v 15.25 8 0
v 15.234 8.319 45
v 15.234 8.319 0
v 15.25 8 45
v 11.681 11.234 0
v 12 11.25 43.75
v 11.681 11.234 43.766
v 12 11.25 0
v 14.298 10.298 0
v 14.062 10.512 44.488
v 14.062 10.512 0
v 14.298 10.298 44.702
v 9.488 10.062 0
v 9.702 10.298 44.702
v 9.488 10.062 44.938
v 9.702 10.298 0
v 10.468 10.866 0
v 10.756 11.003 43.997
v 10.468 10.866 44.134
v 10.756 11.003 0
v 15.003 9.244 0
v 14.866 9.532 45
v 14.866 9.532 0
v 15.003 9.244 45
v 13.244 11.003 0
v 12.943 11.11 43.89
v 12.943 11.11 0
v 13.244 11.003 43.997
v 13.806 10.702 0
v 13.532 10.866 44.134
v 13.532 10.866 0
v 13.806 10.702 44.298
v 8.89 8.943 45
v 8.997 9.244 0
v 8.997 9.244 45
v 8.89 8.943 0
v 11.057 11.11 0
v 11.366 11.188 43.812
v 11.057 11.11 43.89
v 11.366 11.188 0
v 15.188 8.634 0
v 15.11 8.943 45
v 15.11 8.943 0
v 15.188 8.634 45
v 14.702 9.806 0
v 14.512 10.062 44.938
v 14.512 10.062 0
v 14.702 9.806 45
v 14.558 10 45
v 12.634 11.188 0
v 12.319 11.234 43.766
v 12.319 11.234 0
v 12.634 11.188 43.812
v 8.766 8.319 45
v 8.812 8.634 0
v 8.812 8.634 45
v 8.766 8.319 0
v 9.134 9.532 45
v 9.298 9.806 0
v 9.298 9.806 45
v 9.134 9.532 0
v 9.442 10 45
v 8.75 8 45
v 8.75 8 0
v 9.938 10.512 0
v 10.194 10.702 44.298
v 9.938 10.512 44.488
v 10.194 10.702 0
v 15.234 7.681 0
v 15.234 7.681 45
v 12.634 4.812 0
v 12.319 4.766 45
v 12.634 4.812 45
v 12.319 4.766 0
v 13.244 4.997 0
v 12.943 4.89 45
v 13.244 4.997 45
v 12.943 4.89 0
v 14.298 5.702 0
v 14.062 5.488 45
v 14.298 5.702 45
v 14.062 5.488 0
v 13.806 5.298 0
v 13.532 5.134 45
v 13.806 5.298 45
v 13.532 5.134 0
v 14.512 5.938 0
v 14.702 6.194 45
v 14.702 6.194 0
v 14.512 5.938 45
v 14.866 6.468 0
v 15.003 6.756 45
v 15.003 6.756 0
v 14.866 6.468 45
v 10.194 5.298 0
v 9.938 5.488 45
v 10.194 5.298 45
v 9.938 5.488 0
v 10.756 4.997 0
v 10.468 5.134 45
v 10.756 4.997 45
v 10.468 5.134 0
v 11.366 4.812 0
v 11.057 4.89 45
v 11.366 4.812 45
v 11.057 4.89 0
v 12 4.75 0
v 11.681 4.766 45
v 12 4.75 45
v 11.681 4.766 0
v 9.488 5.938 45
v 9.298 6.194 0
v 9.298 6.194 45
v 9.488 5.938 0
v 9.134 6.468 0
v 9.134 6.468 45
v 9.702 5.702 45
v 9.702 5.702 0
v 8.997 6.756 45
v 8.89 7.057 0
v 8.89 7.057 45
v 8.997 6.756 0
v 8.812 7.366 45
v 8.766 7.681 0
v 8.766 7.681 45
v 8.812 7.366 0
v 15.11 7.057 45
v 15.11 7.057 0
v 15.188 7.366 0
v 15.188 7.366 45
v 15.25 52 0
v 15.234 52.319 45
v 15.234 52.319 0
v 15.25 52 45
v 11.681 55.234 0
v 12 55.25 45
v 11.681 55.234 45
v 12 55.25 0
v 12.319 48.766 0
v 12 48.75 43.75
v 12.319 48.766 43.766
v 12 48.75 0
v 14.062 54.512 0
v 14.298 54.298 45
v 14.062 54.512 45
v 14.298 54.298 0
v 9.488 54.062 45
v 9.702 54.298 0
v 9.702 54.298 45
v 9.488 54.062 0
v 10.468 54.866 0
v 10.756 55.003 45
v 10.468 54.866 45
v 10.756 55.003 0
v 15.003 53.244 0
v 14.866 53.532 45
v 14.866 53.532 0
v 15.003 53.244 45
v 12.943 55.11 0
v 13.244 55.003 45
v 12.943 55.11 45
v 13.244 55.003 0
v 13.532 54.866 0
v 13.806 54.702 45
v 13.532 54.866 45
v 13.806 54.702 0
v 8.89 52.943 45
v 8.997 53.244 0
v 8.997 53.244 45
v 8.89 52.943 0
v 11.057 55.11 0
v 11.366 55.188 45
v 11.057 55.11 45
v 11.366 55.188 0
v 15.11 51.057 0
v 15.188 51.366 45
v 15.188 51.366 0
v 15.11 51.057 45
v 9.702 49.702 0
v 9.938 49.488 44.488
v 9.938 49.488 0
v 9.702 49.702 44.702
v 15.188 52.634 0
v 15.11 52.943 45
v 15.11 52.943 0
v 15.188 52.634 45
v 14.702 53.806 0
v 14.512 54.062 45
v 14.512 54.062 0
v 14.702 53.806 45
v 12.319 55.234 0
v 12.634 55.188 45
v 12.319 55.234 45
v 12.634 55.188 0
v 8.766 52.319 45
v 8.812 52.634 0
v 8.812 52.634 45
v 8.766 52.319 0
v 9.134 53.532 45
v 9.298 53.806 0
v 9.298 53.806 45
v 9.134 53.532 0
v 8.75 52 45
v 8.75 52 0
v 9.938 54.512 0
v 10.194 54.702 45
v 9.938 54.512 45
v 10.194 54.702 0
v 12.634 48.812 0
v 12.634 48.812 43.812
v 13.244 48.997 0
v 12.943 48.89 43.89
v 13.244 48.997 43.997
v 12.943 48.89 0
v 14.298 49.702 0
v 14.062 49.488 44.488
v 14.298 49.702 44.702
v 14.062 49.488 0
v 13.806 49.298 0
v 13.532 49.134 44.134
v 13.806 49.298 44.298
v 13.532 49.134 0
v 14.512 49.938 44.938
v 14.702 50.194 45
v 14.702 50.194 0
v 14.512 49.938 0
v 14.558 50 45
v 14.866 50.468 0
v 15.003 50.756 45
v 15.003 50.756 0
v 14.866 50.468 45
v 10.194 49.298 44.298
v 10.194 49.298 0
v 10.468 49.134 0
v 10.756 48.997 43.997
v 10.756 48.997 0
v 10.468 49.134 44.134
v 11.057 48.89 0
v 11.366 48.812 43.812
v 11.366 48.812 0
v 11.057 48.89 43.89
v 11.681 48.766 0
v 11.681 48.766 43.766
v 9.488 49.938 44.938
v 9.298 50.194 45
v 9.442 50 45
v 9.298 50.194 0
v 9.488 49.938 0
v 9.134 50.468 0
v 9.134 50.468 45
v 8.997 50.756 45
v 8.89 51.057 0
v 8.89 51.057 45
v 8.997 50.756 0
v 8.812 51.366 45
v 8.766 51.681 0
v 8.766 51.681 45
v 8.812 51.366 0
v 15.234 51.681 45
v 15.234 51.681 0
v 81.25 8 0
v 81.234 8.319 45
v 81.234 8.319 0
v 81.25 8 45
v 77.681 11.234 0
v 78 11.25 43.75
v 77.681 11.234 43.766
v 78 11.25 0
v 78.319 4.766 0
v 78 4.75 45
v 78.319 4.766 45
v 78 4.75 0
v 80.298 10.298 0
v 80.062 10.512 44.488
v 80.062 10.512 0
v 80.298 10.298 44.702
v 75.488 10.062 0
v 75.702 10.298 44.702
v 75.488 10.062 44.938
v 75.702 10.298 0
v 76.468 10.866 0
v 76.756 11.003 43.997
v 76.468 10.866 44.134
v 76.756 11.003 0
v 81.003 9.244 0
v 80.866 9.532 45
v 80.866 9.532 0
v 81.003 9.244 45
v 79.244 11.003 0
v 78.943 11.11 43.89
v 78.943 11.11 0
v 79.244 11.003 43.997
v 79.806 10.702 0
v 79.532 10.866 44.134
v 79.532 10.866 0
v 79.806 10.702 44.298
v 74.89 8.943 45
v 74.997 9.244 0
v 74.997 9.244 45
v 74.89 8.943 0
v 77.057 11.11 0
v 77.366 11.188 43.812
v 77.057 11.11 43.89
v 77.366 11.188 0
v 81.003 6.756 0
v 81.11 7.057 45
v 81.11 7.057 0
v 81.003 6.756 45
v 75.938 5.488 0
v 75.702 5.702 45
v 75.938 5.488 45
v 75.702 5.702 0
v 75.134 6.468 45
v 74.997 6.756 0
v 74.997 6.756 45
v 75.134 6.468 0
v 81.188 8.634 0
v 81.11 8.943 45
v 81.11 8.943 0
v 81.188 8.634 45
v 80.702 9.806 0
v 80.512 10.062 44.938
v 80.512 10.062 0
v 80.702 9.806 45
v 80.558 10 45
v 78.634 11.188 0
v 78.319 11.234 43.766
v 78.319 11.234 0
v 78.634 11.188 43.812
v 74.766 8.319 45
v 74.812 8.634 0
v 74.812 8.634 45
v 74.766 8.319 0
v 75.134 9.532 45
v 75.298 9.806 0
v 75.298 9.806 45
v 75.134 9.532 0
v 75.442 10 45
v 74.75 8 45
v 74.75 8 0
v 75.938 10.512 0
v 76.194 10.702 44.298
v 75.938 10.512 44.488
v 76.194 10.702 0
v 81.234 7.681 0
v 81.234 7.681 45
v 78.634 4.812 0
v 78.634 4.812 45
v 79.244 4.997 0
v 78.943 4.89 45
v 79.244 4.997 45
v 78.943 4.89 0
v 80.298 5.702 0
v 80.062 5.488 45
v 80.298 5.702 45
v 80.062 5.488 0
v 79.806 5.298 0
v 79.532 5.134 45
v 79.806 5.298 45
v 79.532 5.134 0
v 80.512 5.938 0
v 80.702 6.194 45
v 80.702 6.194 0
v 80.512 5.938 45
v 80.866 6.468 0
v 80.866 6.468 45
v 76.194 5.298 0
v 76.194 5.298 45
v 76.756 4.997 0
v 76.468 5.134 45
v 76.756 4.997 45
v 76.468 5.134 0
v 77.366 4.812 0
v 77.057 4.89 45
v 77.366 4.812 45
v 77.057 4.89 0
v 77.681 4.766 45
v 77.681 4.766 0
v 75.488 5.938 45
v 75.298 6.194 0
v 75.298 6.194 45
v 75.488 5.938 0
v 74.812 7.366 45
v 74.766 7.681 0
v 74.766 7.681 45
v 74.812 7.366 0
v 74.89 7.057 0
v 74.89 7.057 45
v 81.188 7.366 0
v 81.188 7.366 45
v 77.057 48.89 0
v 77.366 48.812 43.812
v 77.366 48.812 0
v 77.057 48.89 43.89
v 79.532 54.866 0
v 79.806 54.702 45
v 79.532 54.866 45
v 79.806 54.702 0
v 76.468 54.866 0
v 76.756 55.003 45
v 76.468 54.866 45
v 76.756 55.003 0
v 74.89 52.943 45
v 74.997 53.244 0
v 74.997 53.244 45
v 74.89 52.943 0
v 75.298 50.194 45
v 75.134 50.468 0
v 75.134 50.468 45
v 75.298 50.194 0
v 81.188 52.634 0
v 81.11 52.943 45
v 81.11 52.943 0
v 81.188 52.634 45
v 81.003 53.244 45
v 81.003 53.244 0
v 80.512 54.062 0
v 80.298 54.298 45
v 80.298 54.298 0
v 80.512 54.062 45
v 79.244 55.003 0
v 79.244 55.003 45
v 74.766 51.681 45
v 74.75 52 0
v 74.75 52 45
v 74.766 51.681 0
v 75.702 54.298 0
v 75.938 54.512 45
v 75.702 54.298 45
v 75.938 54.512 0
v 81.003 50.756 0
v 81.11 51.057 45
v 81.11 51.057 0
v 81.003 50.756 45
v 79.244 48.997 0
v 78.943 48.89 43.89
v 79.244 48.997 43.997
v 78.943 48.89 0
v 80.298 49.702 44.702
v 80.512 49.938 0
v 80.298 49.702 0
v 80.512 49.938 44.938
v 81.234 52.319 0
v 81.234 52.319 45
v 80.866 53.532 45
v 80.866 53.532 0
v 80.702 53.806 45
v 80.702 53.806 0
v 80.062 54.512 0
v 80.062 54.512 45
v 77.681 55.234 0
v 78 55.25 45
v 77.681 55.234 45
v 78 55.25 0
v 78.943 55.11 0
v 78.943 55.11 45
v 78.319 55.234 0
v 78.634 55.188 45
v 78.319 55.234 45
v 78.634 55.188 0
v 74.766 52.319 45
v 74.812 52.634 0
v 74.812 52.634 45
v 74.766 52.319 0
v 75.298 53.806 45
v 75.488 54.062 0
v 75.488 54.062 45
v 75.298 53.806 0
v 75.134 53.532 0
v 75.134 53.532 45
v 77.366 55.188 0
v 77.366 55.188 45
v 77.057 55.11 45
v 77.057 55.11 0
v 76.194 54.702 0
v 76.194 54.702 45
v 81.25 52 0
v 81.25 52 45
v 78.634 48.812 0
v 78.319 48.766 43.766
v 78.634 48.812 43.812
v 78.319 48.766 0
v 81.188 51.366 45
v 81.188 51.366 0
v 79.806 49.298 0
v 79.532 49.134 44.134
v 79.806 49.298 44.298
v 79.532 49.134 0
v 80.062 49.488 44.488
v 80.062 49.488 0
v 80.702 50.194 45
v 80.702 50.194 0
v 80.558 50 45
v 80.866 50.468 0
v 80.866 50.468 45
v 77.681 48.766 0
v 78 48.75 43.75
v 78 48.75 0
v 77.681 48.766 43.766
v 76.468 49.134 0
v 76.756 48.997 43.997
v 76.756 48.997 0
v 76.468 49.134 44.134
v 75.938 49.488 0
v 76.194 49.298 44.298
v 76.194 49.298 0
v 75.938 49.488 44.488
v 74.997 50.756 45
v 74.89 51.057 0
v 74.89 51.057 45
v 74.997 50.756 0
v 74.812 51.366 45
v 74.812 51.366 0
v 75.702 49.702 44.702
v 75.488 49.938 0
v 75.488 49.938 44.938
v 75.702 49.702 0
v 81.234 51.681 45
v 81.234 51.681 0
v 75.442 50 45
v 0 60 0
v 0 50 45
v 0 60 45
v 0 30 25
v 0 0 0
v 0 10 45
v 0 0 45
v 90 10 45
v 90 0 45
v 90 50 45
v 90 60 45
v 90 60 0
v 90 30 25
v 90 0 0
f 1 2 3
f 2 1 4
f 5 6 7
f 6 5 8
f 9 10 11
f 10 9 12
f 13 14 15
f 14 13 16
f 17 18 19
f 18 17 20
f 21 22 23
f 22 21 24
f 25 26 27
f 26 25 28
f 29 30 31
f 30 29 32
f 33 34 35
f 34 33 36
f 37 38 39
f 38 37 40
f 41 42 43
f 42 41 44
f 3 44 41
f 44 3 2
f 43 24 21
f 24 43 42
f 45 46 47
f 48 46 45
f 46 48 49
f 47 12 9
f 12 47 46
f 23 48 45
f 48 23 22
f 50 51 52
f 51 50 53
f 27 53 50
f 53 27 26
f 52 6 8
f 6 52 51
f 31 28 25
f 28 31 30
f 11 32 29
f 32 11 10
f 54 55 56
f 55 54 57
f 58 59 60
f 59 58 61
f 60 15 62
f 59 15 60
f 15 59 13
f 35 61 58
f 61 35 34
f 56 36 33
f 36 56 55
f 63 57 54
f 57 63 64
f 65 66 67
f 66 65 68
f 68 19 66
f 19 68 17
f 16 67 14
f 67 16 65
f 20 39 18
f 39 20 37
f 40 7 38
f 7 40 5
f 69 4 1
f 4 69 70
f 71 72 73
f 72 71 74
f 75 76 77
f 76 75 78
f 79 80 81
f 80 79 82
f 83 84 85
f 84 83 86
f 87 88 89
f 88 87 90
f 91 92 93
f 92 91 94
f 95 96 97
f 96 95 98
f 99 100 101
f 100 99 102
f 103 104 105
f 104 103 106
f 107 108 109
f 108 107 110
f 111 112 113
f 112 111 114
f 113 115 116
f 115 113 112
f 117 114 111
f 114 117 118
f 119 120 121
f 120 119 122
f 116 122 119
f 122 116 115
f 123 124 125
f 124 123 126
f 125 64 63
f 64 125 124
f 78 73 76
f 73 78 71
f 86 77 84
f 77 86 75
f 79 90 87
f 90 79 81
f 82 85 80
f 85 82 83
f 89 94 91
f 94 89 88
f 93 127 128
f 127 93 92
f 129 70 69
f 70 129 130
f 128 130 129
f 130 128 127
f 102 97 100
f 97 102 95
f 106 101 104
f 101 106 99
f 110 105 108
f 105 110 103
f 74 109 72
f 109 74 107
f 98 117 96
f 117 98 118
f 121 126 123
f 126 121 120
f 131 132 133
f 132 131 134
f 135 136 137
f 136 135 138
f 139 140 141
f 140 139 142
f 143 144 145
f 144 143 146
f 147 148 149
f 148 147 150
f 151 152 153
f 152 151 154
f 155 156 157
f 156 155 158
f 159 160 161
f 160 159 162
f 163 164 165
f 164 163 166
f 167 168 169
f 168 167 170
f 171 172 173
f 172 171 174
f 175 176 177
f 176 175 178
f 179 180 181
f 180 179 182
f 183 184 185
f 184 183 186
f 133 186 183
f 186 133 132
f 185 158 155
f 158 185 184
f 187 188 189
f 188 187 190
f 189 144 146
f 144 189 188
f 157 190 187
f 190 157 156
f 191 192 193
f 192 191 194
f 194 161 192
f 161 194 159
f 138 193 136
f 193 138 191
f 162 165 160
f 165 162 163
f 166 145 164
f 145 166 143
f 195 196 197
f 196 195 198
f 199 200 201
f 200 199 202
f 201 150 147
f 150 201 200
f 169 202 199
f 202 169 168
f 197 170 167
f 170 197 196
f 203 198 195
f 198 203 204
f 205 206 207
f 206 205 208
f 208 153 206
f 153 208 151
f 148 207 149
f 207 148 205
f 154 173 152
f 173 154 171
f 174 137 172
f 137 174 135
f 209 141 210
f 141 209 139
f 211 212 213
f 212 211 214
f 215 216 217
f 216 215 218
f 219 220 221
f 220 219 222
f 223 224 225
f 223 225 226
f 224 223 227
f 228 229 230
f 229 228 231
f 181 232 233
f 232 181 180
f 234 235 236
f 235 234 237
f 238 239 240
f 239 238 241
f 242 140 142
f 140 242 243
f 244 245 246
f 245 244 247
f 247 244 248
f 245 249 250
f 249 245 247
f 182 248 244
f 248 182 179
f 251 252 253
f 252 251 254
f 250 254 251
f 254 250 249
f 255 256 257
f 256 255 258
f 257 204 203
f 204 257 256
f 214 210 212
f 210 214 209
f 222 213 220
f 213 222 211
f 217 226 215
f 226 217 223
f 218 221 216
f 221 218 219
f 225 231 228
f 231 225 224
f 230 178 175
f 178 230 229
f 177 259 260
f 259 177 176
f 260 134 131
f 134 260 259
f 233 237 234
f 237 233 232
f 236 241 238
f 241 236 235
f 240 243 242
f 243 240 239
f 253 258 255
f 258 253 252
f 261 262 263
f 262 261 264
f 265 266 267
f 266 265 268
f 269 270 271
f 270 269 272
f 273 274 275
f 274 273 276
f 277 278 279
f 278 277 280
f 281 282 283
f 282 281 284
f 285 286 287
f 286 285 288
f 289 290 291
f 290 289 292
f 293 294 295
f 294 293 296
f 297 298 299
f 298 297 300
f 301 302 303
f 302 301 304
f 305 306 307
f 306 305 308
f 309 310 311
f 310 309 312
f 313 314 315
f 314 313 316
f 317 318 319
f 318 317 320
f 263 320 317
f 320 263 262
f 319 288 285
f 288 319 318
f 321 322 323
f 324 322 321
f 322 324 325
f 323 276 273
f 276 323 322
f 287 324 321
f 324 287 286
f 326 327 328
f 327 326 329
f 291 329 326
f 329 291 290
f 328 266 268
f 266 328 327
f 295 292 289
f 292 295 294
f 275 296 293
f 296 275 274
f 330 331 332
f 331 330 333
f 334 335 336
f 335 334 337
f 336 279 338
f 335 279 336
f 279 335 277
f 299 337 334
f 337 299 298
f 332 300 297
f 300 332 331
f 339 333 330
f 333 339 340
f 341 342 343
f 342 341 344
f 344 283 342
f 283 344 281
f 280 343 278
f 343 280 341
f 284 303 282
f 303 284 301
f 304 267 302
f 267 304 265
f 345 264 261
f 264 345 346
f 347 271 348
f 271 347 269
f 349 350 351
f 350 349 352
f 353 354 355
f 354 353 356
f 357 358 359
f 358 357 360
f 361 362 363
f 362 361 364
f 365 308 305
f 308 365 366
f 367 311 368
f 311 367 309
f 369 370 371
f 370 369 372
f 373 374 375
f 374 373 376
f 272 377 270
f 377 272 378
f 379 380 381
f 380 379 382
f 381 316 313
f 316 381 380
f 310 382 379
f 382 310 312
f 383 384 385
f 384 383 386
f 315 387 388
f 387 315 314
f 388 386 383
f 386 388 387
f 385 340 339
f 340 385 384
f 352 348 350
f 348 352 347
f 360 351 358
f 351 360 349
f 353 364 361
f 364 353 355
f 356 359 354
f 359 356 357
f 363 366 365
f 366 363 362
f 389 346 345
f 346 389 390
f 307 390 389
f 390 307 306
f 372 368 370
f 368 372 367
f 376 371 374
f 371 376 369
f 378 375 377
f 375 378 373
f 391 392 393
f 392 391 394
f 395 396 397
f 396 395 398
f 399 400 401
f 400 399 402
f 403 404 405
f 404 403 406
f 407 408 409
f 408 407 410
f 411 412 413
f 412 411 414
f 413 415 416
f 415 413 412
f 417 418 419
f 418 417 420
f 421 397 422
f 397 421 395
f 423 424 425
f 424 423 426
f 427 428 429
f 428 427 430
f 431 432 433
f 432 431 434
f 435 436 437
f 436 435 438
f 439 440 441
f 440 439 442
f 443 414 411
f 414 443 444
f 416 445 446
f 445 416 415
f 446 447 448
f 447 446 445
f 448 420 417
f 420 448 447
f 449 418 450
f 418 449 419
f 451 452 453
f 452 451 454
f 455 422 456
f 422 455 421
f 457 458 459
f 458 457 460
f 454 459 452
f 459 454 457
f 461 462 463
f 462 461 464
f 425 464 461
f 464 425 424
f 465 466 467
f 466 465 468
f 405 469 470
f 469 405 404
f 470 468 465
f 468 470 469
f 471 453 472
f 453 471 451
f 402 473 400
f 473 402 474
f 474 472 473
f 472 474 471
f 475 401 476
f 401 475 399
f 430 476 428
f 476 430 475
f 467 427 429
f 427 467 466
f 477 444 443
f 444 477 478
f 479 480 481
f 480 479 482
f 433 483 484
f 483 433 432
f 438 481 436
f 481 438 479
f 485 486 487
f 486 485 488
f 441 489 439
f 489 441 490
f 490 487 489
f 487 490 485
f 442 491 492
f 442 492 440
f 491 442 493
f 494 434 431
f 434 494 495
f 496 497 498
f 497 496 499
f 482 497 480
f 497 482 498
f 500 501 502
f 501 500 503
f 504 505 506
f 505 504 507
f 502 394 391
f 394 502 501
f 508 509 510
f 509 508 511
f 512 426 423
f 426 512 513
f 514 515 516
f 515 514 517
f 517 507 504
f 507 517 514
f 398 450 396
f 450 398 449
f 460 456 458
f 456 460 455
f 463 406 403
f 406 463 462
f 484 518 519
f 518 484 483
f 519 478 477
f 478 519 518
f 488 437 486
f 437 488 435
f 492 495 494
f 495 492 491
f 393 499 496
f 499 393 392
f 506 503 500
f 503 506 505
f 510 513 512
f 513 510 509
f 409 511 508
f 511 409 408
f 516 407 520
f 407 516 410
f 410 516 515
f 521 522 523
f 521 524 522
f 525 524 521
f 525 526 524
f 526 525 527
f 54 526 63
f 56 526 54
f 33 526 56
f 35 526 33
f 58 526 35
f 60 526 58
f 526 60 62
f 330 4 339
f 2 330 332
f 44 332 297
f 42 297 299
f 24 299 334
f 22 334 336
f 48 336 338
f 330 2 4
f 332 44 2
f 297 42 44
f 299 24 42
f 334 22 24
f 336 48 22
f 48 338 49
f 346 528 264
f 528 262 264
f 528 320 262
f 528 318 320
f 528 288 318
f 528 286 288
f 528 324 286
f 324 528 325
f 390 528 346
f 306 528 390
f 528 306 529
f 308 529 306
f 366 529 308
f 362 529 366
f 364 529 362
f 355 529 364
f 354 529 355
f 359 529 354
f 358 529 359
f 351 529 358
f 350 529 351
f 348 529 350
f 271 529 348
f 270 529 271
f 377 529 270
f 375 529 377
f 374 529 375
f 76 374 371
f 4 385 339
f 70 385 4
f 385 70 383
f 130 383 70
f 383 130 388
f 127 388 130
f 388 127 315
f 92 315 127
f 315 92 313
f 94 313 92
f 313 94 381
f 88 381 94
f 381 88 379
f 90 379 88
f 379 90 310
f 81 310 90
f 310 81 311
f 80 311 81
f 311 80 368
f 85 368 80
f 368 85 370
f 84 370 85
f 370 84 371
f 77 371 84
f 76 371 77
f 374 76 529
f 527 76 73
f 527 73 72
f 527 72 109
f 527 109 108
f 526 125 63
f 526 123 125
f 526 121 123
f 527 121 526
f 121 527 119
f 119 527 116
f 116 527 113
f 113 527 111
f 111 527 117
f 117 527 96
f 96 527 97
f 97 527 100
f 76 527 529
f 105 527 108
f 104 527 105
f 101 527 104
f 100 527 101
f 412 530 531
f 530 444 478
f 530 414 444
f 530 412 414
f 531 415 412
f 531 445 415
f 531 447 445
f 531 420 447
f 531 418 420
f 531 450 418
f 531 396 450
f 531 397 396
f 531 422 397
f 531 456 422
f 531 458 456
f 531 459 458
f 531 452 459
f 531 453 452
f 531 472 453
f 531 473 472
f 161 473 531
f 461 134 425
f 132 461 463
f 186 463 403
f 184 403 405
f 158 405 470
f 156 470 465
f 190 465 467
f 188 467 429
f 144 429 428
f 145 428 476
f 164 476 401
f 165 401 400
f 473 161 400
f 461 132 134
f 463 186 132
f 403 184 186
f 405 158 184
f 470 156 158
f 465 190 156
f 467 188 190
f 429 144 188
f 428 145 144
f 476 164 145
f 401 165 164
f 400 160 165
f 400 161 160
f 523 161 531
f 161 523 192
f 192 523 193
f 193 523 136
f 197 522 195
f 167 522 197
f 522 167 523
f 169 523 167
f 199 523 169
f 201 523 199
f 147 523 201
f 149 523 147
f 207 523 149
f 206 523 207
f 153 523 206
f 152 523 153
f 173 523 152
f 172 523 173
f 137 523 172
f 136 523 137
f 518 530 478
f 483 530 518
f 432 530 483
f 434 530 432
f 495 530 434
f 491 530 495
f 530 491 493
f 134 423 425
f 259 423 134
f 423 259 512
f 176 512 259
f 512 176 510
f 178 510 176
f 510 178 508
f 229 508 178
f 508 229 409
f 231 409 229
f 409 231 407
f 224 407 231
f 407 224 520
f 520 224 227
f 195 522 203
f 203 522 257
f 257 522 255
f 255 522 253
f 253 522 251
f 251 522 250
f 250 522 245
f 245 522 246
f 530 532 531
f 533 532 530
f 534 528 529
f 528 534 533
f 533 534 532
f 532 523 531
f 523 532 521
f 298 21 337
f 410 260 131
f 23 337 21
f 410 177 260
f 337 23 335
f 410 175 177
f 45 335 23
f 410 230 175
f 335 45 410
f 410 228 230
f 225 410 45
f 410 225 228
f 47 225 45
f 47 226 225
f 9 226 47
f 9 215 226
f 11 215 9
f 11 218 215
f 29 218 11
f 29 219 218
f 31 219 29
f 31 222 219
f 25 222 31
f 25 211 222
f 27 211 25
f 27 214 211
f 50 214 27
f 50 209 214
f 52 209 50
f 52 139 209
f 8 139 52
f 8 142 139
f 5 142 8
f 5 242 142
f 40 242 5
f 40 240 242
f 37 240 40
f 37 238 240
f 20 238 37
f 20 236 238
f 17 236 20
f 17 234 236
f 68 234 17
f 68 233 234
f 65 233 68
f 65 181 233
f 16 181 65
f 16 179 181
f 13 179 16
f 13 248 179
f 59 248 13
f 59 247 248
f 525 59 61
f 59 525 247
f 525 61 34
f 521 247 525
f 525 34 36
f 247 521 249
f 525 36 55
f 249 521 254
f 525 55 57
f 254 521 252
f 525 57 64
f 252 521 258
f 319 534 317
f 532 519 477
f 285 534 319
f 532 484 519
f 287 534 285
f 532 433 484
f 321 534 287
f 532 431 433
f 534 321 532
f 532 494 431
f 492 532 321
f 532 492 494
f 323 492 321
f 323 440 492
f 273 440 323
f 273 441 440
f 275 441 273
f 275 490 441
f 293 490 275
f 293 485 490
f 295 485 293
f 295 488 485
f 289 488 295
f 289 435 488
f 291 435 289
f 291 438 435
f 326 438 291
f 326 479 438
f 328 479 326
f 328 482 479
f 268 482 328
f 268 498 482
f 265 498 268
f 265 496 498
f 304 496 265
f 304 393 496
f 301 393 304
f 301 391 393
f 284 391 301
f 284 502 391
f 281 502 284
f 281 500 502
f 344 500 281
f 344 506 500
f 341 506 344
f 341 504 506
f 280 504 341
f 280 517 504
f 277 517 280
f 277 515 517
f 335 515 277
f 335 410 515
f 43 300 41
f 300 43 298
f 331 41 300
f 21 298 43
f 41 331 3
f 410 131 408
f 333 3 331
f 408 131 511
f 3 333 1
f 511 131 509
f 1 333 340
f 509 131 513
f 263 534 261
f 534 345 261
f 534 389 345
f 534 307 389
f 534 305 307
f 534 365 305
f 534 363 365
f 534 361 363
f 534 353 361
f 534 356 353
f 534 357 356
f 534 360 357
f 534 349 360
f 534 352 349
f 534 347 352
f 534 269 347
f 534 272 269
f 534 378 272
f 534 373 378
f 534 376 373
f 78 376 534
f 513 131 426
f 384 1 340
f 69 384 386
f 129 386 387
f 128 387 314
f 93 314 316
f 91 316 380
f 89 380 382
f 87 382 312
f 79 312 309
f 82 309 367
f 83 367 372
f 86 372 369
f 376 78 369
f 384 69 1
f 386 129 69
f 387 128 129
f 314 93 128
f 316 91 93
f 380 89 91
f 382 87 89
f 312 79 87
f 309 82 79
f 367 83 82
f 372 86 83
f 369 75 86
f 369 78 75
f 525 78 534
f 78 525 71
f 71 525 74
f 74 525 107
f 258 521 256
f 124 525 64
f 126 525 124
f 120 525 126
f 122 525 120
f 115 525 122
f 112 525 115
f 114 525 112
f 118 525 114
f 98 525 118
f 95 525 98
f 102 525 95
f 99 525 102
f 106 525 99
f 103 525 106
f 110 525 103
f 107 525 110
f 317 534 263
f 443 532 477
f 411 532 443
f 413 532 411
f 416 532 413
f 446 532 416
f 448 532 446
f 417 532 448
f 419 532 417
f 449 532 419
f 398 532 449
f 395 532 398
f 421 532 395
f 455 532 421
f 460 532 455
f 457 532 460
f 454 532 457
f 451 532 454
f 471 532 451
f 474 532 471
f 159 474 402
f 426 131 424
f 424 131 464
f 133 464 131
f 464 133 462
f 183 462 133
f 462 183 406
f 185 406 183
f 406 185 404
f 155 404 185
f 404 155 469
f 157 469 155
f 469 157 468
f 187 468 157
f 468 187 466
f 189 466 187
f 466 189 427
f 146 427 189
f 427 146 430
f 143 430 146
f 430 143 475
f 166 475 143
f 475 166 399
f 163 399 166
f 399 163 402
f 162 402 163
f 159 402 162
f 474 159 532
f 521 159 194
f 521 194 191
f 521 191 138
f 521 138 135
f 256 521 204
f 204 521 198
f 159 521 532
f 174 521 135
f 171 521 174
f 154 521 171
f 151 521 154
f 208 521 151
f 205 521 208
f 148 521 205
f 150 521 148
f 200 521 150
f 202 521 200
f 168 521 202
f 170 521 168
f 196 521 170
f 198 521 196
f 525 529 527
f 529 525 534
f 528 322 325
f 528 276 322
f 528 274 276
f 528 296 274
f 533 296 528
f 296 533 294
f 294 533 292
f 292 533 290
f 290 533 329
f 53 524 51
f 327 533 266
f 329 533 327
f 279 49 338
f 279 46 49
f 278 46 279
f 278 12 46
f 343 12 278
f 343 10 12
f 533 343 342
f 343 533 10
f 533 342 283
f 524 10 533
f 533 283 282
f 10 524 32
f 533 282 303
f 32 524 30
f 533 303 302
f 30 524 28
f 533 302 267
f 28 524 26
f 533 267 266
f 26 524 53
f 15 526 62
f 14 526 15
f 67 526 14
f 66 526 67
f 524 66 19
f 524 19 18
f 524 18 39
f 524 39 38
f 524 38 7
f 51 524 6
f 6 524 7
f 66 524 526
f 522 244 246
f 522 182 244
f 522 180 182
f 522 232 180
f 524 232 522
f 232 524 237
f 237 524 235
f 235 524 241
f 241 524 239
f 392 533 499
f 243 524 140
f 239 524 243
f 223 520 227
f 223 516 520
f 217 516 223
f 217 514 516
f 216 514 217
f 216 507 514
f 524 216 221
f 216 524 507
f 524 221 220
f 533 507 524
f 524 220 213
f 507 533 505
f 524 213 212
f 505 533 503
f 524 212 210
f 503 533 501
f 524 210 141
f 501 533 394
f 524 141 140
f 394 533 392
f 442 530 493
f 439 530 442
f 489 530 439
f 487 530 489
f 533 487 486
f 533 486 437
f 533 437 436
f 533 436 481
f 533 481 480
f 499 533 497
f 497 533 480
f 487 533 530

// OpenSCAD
// Original MechIntel educational model. CC0-1.0. Units: mm.
// Not a standardized or load-rated component.
$fn=96;
length=90; width=60; height=45; groove_depth=20;
$fn=64;
difference(){
 cube([length,width,height]);
 translate([-1,width/2,height-groove_depth]) rotate([90,0,90]) linear_extrude(height=length+2)
 polygon([[0,0],[groove_depth+2,groove_depth+2],[-groove_depth-2,groove_depth+2]]);
 for(x=[12,length-12]) for(y=[8,width-8]) translate([x,y,-1]) cylinder(d=6.5,h=height+2);
}
